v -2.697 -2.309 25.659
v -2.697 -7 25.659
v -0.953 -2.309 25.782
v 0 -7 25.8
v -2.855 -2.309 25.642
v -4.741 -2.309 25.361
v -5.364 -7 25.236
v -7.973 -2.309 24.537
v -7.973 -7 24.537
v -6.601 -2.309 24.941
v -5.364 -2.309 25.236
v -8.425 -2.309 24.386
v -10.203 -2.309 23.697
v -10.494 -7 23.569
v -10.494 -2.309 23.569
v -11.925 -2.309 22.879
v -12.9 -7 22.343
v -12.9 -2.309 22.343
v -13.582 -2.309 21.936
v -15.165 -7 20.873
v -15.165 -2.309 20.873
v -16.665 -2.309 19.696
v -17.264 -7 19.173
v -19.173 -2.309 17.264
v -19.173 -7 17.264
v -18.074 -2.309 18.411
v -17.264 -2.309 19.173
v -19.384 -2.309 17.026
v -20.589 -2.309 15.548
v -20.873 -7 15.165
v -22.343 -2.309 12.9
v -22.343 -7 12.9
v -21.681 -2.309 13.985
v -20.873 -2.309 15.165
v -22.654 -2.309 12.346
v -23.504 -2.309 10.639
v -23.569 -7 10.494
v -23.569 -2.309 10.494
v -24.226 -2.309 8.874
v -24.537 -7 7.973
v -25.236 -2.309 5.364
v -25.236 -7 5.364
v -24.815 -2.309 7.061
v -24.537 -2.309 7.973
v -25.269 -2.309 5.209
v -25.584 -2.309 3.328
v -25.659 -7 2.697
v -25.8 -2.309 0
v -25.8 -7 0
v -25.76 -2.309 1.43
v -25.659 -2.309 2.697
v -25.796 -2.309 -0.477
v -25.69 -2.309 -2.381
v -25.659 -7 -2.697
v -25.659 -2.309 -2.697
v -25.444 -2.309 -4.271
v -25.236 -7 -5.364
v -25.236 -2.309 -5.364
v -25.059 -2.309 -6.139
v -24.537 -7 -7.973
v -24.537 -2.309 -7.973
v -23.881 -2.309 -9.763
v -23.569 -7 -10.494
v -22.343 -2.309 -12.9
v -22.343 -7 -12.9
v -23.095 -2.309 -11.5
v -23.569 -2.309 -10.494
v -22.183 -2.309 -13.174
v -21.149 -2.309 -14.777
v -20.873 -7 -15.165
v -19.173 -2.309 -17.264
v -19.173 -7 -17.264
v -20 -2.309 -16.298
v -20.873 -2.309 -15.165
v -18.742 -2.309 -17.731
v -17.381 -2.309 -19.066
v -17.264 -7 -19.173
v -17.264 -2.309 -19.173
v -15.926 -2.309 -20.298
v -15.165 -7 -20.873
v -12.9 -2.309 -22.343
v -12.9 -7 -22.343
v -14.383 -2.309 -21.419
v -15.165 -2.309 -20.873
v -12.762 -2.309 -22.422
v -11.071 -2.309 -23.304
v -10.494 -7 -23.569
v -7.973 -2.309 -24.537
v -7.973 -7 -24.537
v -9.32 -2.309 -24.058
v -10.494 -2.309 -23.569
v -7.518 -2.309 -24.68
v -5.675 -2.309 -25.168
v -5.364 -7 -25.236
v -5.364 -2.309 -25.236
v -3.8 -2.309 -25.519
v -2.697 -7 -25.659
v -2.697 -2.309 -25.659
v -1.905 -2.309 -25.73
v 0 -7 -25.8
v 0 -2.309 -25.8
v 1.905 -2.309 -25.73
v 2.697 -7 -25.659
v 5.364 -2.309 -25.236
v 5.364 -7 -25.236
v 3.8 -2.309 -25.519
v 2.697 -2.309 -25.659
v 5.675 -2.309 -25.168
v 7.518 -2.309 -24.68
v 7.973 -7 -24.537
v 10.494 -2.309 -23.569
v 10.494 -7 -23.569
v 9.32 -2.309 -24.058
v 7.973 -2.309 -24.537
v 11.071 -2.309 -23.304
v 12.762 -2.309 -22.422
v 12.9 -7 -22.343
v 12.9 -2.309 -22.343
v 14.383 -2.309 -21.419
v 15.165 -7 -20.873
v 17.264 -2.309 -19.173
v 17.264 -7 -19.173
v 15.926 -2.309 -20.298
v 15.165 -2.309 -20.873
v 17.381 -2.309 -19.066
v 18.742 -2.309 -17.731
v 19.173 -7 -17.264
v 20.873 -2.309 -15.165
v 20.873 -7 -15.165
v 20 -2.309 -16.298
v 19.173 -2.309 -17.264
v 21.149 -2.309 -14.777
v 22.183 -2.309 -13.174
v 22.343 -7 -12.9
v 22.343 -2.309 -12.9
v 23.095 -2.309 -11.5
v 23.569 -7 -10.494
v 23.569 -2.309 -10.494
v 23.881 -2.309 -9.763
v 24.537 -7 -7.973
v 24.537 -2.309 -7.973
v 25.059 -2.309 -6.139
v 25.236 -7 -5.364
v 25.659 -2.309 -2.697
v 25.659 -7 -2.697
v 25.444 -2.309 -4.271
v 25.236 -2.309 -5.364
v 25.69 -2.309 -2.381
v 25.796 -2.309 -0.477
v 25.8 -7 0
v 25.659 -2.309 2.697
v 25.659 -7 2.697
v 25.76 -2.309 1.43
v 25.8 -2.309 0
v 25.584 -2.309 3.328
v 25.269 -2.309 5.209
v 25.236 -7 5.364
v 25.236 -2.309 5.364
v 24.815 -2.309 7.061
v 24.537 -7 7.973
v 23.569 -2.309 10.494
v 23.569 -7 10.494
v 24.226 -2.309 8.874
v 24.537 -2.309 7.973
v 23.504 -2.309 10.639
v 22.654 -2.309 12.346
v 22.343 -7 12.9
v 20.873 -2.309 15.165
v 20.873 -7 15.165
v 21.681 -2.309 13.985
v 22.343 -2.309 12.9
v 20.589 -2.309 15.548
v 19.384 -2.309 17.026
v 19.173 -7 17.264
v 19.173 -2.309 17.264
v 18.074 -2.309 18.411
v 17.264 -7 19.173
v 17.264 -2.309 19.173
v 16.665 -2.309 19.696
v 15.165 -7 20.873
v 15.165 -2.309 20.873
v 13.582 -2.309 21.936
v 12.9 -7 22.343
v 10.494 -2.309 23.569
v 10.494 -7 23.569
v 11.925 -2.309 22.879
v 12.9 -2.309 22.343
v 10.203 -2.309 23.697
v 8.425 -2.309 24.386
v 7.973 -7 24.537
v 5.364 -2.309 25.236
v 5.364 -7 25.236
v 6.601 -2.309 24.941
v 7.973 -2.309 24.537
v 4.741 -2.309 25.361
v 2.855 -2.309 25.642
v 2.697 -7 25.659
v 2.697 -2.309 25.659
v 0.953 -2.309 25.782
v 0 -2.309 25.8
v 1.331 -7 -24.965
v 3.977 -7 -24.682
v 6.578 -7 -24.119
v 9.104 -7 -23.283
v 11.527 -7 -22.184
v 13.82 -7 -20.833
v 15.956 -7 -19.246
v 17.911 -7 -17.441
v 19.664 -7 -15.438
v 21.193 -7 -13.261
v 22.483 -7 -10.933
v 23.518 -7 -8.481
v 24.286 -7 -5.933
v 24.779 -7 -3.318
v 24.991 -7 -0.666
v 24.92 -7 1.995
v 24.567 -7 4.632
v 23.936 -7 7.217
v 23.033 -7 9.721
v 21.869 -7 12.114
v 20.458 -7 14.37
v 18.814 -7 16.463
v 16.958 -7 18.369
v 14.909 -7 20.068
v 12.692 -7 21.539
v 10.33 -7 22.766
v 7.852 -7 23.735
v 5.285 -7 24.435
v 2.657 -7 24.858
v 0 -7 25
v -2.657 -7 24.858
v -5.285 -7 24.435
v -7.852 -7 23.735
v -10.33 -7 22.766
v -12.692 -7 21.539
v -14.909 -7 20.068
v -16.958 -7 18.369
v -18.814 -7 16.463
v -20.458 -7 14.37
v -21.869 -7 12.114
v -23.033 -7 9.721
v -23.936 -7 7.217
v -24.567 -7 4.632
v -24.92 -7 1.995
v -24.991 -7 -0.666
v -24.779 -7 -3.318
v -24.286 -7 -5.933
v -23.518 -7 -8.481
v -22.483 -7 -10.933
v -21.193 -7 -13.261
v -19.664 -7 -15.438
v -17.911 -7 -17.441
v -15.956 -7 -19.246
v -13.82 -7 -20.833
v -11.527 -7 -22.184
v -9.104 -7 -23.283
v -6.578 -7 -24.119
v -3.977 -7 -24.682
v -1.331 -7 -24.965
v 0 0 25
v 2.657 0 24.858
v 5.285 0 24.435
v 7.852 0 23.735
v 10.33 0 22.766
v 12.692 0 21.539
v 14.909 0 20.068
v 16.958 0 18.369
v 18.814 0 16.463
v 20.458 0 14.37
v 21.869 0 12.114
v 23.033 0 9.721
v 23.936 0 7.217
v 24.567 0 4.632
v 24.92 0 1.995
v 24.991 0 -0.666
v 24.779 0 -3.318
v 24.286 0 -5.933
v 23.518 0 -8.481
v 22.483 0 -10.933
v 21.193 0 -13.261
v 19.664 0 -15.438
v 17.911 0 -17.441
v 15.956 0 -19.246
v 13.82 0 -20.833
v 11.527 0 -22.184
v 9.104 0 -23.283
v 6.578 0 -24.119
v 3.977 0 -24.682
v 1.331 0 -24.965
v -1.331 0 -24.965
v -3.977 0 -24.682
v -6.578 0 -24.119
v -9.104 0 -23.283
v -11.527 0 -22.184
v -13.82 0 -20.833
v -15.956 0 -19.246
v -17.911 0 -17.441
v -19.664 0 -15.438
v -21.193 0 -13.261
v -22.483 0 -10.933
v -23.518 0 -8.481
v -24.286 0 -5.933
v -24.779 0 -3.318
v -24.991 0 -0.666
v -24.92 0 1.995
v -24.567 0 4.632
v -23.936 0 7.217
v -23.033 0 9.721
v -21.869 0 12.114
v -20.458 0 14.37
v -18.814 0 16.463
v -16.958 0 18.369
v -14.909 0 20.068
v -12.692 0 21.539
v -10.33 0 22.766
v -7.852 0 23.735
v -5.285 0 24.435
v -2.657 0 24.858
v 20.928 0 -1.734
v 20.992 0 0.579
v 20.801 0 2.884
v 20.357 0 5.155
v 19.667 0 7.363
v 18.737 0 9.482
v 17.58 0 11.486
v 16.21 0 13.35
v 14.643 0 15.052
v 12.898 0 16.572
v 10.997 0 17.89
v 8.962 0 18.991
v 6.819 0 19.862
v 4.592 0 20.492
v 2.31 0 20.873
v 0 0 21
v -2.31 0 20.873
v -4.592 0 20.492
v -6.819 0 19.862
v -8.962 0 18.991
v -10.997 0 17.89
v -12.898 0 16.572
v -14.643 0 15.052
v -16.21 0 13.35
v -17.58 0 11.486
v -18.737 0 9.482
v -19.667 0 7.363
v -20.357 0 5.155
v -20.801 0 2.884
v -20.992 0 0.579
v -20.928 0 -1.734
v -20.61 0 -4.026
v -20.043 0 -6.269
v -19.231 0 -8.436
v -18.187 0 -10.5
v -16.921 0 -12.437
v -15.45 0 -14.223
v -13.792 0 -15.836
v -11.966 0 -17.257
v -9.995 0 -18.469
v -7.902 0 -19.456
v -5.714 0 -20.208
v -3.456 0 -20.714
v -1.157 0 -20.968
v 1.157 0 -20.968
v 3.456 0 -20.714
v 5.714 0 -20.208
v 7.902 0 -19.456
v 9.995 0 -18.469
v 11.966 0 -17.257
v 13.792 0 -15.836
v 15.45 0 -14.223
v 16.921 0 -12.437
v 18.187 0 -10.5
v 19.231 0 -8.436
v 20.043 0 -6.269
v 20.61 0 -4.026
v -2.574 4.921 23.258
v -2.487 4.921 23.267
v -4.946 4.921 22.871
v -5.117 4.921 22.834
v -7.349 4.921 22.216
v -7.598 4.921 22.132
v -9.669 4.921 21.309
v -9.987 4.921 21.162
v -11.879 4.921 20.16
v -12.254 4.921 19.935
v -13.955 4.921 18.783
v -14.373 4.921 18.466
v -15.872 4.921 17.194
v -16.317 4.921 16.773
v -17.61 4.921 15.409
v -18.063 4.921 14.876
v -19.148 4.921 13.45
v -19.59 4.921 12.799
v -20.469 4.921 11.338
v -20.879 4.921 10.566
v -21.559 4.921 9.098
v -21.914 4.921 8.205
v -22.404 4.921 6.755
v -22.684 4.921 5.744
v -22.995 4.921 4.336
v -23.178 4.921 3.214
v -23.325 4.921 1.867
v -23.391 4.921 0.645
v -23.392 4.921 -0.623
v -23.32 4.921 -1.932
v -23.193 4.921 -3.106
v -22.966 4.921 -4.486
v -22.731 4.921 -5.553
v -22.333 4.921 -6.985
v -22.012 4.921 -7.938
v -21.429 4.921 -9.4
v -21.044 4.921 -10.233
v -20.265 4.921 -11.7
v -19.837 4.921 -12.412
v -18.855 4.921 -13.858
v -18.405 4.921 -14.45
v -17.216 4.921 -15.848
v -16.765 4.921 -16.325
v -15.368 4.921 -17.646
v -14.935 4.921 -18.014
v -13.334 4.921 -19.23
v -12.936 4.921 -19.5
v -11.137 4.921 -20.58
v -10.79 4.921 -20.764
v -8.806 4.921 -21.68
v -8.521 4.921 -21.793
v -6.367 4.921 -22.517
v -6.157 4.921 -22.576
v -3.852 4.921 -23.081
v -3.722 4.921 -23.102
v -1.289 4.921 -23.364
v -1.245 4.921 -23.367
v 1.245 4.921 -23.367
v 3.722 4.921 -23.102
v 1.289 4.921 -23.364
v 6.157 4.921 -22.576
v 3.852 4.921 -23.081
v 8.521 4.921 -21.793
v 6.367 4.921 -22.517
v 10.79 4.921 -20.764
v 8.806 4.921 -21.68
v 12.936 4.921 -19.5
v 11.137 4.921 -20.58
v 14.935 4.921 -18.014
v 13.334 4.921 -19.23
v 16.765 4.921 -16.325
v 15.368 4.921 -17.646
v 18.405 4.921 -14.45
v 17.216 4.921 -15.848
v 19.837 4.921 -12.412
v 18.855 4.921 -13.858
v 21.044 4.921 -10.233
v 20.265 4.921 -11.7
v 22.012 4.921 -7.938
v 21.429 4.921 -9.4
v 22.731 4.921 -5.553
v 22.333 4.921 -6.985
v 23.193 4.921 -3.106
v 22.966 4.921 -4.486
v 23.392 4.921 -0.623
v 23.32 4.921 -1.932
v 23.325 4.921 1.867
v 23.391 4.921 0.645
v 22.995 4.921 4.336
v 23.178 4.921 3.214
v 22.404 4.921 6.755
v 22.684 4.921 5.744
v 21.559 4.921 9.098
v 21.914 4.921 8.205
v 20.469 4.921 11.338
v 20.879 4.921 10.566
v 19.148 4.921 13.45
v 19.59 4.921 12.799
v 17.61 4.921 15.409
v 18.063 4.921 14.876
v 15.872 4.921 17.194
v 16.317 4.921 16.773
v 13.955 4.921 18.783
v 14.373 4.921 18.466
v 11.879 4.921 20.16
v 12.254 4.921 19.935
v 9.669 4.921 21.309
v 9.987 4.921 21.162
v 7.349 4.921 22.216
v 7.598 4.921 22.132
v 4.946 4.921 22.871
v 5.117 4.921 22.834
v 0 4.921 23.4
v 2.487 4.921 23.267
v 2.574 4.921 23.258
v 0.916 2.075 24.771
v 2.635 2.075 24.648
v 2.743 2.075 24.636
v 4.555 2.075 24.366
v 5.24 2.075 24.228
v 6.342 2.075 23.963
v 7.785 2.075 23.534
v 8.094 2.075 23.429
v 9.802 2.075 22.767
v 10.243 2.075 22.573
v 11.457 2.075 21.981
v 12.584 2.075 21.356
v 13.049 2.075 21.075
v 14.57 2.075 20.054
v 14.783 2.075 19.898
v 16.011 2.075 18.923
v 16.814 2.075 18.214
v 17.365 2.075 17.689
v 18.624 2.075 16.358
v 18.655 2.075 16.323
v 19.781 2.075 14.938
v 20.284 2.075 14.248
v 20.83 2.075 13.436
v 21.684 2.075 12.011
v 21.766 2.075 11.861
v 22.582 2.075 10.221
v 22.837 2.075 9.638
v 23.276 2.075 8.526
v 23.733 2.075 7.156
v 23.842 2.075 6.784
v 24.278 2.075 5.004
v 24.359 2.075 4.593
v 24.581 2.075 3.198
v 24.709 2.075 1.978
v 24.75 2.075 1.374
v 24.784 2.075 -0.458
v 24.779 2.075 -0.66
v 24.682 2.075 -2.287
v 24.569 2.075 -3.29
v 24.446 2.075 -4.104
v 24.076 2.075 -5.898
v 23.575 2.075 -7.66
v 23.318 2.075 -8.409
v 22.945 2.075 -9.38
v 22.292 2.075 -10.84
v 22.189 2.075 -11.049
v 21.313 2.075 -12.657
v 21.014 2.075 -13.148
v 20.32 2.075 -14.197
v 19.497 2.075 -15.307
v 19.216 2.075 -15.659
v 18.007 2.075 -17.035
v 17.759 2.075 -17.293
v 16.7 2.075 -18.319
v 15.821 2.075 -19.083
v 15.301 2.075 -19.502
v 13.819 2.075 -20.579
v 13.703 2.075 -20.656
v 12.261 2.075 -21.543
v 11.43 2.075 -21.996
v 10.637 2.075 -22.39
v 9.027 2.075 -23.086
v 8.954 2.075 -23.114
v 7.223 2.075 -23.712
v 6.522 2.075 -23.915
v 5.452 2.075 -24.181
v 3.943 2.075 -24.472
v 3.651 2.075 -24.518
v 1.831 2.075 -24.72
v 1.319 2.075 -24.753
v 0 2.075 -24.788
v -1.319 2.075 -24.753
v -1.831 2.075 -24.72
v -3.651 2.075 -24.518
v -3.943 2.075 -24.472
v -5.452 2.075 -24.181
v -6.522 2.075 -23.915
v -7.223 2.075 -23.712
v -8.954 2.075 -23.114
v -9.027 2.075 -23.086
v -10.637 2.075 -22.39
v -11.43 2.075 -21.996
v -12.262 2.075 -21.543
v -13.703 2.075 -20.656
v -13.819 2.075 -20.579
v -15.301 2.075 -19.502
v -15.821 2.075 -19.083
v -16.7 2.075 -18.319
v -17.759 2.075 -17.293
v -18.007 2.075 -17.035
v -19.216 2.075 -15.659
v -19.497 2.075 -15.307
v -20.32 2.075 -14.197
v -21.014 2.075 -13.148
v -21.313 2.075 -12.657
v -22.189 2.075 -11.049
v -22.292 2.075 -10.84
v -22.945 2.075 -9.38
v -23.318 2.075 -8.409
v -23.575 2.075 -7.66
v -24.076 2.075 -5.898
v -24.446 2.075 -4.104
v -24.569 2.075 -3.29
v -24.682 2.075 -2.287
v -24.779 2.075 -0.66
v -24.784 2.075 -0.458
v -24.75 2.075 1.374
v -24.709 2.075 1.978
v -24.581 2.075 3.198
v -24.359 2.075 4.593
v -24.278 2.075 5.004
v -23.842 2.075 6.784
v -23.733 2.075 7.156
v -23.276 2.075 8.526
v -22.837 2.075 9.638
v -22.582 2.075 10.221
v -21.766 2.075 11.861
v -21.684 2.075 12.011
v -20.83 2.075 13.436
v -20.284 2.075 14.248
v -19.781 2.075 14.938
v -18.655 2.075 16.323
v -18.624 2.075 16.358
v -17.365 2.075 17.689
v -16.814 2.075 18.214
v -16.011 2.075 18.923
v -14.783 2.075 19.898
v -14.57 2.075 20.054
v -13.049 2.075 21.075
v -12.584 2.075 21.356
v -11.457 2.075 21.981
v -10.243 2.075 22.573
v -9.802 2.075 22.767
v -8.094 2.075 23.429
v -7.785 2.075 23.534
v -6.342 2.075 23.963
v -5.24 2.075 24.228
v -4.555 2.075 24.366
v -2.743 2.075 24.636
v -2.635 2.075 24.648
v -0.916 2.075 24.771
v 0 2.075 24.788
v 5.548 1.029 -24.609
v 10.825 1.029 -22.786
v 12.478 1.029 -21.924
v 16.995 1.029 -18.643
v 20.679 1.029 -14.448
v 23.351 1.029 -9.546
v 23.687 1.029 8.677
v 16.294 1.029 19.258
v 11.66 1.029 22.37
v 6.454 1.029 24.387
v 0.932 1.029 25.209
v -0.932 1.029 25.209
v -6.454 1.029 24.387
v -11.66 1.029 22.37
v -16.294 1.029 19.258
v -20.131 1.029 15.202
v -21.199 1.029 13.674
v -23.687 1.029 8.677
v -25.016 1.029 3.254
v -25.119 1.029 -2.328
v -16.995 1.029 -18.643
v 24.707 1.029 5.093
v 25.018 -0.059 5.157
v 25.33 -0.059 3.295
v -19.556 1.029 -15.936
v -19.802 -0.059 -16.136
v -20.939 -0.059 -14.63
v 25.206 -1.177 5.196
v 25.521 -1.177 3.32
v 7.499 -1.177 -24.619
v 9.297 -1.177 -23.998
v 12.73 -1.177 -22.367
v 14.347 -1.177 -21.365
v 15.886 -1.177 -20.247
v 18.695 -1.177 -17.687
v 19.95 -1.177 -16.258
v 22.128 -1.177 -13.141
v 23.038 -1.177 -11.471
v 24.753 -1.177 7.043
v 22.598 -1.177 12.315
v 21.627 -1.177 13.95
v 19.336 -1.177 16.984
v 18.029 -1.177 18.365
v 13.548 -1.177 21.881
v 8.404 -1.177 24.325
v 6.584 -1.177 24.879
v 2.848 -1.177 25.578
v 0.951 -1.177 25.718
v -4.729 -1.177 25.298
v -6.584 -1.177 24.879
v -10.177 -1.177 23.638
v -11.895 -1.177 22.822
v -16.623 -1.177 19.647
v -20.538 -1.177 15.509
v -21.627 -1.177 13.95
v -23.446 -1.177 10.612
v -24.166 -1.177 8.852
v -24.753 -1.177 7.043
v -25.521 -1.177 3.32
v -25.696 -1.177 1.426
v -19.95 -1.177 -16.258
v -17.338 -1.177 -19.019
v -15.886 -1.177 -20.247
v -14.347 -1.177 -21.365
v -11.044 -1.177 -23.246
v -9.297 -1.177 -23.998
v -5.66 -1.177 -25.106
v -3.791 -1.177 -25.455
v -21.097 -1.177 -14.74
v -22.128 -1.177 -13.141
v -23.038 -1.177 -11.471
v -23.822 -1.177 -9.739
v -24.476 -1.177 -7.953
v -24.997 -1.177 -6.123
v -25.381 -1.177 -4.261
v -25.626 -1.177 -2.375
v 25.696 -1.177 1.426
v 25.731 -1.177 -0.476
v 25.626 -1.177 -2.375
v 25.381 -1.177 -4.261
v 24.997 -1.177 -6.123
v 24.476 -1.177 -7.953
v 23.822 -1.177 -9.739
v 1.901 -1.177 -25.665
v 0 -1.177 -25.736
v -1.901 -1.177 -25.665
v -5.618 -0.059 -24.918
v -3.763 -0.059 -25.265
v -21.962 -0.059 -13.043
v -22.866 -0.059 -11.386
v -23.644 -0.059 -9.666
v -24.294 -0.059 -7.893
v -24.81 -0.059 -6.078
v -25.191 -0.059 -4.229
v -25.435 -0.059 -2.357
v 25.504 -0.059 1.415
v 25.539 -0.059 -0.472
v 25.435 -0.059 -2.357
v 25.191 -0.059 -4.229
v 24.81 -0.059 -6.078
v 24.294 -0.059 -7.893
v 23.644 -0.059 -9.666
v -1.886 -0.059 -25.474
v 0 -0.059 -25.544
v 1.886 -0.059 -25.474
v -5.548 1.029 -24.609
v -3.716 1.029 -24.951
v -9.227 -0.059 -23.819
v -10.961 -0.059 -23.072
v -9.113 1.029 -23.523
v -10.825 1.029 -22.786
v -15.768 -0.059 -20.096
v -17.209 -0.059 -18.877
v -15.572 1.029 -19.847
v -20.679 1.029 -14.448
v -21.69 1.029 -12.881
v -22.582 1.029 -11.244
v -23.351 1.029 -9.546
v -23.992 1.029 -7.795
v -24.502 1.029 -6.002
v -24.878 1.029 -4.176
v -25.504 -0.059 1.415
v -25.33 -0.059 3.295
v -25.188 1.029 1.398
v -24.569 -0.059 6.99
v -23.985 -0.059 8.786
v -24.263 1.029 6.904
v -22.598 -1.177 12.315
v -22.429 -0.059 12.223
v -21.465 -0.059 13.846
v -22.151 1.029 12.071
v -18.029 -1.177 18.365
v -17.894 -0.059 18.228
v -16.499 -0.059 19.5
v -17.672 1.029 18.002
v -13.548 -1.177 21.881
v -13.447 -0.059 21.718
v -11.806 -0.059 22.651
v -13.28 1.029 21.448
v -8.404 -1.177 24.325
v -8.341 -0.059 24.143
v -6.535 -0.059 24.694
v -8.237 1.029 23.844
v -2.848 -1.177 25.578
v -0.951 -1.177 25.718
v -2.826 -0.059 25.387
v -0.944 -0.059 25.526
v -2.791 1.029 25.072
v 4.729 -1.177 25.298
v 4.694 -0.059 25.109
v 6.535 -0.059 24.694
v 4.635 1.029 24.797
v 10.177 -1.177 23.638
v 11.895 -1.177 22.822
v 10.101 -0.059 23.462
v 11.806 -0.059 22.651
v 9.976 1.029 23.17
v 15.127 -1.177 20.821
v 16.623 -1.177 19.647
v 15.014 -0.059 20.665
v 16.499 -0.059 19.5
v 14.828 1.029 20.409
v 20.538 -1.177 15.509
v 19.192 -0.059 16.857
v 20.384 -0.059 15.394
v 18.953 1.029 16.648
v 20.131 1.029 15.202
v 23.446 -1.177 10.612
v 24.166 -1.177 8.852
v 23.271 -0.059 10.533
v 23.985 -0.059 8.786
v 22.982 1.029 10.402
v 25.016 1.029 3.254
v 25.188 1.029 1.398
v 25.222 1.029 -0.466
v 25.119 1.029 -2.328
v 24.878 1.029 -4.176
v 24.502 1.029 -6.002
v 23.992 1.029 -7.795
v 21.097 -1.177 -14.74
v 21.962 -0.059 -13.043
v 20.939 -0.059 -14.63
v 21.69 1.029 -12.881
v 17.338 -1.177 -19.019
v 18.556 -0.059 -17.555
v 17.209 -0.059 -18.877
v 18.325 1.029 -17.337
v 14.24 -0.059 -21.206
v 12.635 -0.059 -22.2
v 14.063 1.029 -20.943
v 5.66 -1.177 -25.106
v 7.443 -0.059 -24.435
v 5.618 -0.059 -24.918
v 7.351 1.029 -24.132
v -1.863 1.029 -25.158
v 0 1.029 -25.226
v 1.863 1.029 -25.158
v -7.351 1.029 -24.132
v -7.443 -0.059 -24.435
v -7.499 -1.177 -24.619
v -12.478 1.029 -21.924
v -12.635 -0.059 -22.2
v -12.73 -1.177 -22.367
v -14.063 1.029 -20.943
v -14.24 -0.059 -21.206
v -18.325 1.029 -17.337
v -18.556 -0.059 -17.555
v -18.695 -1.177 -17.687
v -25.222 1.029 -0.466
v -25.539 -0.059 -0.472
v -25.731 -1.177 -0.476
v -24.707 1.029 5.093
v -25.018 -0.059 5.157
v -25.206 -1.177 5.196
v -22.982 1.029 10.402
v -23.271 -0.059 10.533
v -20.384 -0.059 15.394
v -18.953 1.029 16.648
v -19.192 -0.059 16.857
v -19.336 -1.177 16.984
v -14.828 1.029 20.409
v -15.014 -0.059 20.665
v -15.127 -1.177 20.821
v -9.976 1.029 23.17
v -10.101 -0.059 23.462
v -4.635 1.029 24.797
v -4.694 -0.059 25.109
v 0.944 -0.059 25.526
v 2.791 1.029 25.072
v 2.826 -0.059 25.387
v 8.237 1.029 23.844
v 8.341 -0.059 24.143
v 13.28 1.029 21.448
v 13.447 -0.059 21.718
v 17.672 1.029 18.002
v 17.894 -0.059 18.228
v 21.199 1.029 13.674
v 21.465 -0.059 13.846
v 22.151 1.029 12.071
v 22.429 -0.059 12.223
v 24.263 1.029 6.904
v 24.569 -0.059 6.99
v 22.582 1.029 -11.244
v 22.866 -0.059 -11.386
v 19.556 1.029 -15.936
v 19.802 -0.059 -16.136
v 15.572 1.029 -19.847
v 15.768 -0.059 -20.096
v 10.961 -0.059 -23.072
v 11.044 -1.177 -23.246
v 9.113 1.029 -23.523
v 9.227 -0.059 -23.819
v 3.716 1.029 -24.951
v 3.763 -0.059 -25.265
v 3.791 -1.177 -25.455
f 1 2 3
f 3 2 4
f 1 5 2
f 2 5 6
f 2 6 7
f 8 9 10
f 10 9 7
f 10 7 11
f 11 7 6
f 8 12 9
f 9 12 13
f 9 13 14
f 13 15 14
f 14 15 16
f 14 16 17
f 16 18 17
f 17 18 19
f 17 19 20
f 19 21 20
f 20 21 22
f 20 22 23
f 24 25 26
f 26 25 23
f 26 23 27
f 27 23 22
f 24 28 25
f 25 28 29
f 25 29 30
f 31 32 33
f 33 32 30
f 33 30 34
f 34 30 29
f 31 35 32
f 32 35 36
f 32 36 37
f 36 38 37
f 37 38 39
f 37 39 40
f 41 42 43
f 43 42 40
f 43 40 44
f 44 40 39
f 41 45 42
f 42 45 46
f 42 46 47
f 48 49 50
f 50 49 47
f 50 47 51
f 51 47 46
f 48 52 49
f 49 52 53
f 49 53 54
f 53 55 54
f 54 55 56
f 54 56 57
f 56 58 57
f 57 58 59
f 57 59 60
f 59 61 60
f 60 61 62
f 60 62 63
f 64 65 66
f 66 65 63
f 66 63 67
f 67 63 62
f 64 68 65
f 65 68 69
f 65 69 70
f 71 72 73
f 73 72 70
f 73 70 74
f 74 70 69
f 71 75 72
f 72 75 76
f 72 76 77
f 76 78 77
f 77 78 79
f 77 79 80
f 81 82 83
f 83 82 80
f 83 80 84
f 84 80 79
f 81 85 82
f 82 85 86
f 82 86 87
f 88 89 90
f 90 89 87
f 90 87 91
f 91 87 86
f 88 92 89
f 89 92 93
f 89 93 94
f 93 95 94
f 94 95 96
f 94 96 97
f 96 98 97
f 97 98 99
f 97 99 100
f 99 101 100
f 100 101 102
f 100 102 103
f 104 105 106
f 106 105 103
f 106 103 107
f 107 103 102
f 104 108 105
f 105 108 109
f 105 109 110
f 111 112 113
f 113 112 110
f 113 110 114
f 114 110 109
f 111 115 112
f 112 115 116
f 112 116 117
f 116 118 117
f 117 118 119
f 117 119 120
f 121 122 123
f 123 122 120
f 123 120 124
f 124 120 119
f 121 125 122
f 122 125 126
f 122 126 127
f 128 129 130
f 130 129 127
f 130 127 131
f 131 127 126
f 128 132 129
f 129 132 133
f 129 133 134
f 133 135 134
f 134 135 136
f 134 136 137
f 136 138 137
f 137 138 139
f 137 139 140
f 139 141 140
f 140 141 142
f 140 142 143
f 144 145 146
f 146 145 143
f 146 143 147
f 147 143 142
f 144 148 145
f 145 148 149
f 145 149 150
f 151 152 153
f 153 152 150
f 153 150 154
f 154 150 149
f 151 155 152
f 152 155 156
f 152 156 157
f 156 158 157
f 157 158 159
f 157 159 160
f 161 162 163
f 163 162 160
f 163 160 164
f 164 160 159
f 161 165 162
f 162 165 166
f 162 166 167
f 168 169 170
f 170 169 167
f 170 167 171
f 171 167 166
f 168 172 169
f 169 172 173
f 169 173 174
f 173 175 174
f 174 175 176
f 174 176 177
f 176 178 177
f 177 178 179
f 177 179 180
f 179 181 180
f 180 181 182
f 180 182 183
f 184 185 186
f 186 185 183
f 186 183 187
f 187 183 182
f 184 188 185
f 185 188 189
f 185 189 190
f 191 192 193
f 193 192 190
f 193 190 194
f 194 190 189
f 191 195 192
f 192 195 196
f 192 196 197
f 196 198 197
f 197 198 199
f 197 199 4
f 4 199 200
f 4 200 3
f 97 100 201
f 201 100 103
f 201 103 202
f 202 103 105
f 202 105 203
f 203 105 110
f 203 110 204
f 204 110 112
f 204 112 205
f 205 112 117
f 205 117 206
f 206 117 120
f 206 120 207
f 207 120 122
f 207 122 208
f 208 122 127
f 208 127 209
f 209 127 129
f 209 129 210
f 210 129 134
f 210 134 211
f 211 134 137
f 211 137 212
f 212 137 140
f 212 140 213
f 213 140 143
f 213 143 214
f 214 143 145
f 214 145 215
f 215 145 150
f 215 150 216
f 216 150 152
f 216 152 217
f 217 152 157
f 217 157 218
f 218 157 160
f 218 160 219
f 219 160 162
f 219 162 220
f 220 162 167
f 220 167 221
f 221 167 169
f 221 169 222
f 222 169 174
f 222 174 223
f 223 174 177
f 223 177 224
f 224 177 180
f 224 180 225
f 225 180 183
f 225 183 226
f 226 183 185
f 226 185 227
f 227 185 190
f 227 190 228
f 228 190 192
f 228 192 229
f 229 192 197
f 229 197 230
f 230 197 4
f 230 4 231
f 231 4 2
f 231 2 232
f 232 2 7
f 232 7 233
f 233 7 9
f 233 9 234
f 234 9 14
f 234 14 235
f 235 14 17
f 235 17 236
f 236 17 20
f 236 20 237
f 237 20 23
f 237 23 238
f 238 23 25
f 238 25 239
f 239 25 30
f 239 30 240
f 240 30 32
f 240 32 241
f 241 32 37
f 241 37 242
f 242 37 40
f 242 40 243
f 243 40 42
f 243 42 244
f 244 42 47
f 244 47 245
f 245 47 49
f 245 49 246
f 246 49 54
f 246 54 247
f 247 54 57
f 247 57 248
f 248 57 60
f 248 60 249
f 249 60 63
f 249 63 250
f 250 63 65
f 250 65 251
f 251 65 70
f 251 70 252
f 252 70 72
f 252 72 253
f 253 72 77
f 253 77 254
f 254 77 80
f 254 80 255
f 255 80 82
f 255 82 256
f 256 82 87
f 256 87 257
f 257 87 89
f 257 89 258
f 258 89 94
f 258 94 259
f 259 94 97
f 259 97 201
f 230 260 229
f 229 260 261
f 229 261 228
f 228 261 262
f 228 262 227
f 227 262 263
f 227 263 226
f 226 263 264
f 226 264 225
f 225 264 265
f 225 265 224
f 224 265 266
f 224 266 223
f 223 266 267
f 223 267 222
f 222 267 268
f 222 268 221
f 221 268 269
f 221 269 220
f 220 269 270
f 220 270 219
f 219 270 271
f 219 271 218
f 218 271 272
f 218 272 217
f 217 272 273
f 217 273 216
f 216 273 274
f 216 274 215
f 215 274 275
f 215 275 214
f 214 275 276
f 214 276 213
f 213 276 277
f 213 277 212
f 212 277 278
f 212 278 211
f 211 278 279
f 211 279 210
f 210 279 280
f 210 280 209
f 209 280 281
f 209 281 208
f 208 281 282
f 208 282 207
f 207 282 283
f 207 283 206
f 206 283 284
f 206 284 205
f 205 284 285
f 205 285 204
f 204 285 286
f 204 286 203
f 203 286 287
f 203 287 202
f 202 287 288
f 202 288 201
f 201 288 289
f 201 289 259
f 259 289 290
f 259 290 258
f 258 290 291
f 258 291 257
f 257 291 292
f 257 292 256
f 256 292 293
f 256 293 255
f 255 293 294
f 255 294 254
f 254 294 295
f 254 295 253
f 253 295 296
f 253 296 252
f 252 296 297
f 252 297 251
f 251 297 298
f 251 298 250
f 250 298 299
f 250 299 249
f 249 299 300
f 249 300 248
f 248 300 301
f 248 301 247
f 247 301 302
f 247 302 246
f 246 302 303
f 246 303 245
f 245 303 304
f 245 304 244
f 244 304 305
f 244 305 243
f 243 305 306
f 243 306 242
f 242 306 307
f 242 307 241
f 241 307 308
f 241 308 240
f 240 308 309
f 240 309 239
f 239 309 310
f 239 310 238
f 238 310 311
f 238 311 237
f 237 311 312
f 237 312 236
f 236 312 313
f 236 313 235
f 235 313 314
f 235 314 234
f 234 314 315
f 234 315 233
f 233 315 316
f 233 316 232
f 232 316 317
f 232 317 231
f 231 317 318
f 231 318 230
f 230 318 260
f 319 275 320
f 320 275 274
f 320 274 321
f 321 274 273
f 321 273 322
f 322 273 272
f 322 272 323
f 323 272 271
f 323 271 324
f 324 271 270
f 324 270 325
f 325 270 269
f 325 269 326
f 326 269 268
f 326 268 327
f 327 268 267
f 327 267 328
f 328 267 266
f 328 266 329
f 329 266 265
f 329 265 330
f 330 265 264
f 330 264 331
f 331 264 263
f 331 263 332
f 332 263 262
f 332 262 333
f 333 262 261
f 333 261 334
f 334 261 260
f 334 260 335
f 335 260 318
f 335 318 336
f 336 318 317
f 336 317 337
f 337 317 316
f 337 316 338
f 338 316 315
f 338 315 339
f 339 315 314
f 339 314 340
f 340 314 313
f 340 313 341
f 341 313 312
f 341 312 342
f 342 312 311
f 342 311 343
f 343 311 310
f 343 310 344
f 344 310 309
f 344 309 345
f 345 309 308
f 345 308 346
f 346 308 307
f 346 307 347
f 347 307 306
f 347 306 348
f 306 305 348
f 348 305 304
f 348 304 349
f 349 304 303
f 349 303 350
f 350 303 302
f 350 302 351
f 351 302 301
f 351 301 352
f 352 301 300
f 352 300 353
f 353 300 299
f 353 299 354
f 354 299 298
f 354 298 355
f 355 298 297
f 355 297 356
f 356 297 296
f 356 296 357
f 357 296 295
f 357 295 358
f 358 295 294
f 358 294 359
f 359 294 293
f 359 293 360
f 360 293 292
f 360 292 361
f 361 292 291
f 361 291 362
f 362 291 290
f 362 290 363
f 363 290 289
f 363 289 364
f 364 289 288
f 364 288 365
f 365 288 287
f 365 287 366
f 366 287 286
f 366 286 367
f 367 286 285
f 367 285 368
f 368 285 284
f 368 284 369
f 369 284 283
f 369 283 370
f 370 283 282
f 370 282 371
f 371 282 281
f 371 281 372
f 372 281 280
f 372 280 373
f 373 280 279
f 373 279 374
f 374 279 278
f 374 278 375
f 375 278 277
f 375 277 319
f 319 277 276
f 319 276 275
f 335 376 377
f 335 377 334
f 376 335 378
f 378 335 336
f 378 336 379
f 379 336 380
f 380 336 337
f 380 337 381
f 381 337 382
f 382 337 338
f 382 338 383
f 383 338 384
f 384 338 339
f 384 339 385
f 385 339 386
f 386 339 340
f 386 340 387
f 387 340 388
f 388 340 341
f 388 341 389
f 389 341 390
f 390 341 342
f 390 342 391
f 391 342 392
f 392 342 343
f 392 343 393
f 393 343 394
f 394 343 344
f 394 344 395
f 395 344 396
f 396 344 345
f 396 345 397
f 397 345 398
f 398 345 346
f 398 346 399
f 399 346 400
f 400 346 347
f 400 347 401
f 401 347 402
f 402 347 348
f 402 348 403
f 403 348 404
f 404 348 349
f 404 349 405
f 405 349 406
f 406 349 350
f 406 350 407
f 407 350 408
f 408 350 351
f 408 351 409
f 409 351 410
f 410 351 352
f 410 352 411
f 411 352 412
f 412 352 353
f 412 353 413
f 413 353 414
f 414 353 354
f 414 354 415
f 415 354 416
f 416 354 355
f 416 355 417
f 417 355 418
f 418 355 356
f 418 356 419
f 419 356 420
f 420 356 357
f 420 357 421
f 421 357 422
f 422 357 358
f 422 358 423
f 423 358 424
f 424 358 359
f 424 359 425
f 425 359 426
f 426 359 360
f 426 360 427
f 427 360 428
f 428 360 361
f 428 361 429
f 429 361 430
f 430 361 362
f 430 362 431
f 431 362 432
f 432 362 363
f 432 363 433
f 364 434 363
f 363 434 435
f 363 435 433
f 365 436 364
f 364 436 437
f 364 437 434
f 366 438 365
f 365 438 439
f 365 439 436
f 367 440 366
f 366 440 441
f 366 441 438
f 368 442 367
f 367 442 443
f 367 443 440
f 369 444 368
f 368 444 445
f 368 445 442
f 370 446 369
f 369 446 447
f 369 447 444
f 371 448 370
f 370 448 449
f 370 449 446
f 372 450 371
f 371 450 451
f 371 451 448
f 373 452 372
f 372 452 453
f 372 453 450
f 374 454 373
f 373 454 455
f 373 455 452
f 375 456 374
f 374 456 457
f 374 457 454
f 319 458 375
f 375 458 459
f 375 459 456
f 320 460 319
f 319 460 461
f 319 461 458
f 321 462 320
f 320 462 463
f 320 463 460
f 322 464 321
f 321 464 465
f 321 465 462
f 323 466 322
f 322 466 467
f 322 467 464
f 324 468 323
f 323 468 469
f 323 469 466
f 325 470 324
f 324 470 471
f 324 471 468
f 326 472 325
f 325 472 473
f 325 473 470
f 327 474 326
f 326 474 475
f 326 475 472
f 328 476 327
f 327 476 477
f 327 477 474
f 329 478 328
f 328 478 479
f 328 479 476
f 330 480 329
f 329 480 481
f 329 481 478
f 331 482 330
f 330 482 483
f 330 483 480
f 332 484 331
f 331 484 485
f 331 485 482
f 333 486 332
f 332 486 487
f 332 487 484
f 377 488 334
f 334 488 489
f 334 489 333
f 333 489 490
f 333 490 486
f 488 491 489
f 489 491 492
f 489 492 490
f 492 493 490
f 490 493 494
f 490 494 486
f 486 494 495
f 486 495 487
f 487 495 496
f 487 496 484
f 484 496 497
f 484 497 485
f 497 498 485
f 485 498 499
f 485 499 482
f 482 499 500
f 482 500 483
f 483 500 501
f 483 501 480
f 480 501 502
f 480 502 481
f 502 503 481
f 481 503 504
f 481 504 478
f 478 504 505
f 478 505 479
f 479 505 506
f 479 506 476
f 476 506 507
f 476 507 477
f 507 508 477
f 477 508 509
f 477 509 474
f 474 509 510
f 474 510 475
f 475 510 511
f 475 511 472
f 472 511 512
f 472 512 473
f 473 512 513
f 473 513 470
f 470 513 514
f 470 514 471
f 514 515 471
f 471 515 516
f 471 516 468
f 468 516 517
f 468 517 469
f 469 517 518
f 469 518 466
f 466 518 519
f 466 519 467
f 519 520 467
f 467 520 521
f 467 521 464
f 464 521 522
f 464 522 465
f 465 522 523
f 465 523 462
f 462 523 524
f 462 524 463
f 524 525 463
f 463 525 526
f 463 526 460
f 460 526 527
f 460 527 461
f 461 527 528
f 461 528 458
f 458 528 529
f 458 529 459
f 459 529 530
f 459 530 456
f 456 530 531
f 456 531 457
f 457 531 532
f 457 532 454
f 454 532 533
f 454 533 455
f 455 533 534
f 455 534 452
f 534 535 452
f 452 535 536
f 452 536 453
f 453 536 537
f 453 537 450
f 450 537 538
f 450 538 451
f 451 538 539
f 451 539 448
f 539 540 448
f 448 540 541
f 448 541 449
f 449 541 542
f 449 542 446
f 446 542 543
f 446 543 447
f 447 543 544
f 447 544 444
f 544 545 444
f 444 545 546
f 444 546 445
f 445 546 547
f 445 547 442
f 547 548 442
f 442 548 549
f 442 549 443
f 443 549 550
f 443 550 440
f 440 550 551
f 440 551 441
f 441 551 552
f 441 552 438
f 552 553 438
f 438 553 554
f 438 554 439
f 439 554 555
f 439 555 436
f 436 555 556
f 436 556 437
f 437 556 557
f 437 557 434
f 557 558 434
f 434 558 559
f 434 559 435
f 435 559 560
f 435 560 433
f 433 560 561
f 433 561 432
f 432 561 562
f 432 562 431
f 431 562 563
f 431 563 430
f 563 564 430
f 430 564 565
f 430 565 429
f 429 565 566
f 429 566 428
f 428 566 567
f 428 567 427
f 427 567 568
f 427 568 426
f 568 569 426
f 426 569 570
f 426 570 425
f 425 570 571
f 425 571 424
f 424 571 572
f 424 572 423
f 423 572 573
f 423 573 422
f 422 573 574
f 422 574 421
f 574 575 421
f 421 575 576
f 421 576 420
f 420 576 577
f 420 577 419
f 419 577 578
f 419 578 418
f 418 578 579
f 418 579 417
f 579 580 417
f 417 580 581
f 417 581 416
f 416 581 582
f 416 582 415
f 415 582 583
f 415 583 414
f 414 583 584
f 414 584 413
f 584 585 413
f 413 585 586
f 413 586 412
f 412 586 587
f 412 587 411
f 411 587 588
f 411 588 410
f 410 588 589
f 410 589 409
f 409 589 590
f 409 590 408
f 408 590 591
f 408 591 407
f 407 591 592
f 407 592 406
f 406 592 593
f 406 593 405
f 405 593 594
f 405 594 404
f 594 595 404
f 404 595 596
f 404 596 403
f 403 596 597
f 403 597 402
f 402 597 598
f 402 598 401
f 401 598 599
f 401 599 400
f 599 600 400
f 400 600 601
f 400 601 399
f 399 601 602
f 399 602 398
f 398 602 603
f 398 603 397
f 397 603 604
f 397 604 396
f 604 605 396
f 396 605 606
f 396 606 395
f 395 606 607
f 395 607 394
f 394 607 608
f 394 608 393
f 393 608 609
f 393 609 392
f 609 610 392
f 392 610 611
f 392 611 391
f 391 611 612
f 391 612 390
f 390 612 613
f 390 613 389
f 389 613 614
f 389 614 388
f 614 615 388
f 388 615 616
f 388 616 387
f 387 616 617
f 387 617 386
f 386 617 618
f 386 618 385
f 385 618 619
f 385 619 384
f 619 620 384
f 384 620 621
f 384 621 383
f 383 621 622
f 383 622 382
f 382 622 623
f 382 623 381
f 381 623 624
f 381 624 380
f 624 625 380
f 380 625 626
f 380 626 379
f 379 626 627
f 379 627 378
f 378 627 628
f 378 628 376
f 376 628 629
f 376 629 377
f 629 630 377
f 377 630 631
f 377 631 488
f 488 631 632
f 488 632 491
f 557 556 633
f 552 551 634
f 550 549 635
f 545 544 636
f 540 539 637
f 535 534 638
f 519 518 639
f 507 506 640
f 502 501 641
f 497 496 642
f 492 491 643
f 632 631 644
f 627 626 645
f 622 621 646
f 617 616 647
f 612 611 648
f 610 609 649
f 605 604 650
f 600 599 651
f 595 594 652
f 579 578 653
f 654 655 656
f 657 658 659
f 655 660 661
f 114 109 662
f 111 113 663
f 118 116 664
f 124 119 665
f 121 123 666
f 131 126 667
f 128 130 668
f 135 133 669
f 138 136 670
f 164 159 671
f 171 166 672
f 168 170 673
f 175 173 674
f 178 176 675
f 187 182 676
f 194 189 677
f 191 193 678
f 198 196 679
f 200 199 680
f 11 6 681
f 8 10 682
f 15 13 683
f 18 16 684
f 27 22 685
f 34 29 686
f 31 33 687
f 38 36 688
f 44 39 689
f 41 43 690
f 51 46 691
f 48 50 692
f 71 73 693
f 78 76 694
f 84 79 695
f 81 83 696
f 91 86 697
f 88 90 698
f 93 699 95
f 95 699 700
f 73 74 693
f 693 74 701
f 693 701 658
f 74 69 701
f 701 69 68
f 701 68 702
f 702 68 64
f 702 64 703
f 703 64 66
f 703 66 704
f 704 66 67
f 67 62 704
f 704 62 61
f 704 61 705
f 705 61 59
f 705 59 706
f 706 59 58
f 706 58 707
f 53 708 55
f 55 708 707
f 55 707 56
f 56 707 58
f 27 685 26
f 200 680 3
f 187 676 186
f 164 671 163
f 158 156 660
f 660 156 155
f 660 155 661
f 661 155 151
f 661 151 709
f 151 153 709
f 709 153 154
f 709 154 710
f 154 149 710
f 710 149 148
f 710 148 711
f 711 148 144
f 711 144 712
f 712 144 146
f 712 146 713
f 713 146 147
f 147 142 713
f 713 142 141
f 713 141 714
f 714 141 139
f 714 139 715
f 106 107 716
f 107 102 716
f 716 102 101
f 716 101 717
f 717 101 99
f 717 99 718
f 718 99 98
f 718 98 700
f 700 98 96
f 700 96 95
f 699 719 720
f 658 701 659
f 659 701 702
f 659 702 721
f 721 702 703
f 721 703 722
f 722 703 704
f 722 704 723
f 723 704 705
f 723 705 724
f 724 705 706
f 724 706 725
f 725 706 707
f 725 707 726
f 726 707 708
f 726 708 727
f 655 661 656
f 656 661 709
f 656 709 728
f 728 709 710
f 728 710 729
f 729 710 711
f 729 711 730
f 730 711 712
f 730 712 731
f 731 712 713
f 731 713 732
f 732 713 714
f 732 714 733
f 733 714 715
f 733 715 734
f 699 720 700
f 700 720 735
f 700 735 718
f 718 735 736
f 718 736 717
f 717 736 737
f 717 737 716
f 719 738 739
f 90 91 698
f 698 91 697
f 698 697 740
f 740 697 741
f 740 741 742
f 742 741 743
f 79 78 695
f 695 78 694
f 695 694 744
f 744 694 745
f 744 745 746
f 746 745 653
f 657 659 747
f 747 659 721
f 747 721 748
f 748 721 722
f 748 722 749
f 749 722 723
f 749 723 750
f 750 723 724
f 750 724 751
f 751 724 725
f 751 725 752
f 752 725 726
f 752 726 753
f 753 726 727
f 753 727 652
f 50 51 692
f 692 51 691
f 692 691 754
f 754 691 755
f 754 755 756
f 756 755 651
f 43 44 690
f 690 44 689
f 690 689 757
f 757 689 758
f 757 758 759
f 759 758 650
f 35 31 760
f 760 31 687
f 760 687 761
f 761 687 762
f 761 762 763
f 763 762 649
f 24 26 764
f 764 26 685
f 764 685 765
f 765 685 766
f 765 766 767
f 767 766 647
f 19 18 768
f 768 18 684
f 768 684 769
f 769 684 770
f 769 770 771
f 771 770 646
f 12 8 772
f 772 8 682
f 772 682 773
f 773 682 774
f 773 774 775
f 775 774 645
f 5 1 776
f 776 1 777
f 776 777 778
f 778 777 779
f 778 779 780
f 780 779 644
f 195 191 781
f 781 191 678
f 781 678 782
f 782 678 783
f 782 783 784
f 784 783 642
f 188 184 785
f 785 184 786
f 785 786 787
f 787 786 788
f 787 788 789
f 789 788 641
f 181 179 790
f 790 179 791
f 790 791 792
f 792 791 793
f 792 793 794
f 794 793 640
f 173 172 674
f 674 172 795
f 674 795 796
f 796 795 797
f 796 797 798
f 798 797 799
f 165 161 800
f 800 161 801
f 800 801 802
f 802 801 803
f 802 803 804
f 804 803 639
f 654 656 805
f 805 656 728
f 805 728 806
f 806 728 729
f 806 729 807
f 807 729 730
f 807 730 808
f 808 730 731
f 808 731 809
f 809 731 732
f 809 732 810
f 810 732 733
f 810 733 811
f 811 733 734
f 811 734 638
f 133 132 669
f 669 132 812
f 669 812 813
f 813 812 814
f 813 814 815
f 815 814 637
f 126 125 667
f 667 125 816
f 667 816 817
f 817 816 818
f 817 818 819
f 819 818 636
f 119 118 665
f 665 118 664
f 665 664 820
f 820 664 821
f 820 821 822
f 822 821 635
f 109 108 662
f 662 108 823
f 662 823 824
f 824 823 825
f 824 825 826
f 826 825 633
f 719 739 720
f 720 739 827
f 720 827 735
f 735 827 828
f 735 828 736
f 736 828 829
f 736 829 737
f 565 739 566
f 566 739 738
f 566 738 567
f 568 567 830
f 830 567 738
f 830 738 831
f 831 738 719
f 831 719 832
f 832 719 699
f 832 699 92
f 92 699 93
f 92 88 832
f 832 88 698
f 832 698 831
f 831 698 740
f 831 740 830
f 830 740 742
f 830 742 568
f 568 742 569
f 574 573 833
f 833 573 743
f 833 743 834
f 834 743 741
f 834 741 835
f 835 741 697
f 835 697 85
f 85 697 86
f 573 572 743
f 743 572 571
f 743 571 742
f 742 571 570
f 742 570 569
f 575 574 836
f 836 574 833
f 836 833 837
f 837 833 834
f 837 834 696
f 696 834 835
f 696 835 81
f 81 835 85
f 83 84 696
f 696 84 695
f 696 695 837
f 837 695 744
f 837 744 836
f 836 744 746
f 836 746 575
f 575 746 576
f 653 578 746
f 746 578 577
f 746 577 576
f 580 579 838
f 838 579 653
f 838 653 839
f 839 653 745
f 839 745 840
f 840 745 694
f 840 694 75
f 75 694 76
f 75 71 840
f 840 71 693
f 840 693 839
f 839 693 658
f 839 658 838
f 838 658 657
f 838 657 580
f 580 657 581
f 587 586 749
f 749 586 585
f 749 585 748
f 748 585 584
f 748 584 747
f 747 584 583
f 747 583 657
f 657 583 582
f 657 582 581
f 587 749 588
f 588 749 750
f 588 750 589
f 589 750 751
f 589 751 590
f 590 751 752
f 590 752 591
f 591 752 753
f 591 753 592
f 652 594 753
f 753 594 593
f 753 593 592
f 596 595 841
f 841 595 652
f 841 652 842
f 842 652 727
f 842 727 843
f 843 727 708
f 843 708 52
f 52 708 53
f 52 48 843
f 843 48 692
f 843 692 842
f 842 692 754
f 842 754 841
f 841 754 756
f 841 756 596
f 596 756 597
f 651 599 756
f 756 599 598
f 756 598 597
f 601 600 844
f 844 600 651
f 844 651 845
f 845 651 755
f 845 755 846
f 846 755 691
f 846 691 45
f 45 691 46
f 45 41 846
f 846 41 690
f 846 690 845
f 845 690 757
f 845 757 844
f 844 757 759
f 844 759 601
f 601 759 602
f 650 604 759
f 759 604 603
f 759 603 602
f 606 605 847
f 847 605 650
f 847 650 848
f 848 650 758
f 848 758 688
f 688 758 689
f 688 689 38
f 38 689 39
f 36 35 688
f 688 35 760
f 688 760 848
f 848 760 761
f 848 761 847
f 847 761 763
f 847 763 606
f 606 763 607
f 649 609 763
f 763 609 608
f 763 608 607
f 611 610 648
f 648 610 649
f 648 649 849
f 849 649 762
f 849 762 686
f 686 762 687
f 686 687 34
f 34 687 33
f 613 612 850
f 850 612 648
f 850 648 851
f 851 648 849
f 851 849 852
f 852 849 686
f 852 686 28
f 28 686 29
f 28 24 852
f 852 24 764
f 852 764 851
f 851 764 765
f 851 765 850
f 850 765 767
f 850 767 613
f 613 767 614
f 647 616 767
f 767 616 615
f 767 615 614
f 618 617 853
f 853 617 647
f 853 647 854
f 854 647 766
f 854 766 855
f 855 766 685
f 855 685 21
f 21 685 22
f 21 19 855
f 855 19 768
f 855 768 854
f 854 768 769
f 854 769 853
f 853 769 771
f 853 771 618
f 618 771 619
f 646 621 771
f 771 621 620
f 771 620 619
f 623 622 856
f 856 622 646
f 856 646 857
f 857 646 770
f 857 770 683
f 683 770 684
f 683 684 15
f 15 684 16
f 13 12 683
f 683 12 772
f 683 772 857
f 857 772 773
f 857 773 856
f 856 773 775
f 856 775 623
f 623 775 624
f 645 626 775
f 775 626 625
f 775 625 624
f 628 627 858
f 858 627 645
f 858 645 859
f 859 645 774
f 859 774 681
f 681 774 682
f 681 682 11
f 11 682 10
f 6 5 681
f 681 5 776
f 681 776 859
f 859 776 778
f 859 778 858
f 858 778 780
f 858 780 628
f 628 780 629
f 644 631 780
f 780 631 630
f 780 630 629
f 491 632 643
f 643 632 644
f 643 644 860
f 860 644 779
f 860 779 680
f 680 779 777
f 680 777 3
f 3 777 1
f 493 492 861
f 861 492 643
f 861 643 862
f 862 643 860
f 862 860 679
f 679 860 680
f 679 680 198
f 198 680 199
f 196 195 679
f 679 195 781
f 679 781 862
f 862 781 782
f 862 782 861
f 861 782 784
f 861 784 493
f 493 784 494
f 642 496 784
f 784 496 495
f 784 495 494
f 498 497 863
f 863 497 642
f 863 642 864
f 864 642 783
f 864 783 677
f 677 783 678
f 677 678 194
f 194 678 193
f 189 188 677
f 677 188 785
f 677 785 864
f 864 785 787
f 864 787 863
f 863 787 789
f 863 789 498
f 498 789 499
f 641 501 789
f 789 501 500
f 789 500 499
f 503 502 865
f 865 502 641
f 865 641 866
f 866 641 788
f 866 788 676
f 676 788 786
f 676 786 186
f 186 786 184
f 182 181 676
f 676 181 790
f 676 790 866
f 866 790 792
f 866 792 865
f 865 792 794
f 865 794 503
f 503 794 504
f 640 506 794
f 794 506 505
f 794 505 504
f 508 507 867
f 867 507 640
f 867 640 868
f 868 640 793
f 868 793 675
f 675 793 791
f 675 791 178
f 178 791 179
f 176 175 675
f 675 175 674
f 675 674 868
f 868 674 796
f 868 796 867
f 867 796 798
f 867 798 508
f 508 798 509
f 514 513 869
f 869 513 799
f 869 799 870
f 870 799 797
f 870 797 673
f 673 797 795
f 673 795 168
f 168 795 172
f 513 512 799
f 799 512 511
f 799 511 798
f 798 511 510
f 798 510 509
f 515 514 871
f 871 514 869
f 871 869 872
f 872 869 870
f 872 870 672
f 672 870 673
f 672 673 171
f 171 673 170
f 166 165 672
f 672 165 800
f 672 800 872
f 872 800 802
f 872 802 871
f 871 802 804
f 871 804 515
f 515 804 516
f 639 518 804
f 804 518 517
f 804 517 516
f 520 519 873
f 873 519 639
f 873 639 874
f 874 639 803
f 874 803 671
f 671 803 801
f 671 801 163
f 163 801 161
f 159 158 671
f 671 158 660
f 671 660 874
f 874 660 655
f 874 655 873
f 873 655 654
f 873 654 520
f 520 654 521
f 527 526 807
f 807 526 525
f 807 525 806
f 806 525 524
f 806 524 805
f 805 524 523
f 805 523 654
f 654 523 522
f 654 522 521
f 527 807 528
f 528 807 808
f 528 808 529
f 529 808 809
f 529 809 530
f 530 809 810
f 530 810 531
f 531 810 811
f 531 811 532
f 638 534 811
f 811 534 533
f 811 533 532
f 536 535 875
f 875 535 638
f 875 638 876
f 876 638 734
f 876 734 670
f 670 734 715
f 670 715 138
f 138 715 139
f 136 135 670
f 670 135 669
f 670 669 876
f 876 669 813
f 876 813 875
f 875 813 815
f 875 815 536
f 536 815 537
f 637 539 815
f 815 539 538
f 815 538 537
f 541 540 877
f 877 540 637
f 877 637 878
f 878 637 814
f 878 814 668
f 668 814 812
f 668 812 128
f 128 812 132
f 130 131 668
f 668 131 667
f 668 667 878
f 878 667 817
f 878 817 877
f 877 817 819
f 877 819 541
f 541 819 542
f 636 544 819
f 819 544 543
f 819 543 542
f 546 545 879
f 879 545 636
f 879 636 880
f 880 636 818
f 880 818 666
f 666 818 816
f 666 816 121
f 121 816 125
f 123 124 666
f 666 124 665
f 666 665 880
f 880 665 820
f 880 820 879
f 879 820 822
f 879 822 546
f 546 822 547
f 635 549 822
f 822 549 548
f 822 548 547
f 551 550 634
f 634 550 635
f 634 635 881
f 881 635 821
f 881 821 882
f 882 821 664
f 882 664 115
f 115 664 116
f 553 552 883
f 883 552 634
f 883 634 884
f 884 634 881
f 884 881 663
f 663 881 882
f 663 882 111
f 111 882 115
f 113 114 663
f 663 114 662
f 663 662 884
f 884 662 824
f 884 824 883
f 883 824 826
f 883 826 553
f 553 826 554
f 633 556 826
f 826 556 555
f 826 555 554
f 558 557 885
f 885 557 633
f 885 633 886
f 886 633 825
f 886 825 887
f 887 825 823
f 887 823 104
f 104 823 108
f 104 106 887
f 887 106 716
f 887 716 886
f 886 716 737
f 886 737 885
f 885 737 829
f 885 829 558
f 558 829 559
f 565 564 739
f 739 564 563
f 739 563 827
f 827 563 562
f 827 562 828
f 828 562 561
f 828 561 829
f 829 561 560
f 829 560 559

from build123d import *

# Parameters (mm, degrees)
SKETCH1_R           = 25.8
SKETCH1_R_2         = 25
BOSS_EXTRUDE1_DEPTH = 7
SKETCH2_R           = 25.8
SKETCH2_R_2         = 21
BOSS_EXTRUDE2_DEPTH = 5
BOSS_EXTRUDE2_TAPER = 26
FILLET3_R           = 10


with BuildPart() as part:
    # Sketch1 → Boss-Extrude1 (new body)
    with BuildSketch(Plane(origin=(0, 0, 0), x_dir=(1, 0, 0), z_dir=(0, 1, 0))):
        with Locations(Location((0, 0, 0), (0, 0, 270))):
            Circle(SKETCH1_R)
        with Locations(Location((0, 0, 0), (0, 0, 270))):
            Circle(SKETCH1_R_2, mode=Mode.SUBTRACT)
    extrude(amount=-BOSS_EXTRUDE1_DEPTH)

    # Sketch2 → Boss-Extrude2 (add)
    with BuildSketch(Plane(origin=(0, 0, 0), x_dir=(1, 0, 0), z_dir=(0, 1, 0))):
        with Locations(Location((0, 0, 0), (0, 0, 270))):
            Circle(SKETCH2_R)
        Circle(SKETCH2_R_2, mode=Mode.SUBTRACT)
    extrude(amount=BOSS_EXTRUDE2_DEPTH, taper=BOSS_EXTRUDE2_TAPER)

    # Fillet3
    fillet3_edges = [part.edges().sort_by_distance(p)[0] for p in [
        (0, 0, -25.8),
    ]]
    fillet(fillet3_edges, radius=FILLET3_R)


solid = part.part
